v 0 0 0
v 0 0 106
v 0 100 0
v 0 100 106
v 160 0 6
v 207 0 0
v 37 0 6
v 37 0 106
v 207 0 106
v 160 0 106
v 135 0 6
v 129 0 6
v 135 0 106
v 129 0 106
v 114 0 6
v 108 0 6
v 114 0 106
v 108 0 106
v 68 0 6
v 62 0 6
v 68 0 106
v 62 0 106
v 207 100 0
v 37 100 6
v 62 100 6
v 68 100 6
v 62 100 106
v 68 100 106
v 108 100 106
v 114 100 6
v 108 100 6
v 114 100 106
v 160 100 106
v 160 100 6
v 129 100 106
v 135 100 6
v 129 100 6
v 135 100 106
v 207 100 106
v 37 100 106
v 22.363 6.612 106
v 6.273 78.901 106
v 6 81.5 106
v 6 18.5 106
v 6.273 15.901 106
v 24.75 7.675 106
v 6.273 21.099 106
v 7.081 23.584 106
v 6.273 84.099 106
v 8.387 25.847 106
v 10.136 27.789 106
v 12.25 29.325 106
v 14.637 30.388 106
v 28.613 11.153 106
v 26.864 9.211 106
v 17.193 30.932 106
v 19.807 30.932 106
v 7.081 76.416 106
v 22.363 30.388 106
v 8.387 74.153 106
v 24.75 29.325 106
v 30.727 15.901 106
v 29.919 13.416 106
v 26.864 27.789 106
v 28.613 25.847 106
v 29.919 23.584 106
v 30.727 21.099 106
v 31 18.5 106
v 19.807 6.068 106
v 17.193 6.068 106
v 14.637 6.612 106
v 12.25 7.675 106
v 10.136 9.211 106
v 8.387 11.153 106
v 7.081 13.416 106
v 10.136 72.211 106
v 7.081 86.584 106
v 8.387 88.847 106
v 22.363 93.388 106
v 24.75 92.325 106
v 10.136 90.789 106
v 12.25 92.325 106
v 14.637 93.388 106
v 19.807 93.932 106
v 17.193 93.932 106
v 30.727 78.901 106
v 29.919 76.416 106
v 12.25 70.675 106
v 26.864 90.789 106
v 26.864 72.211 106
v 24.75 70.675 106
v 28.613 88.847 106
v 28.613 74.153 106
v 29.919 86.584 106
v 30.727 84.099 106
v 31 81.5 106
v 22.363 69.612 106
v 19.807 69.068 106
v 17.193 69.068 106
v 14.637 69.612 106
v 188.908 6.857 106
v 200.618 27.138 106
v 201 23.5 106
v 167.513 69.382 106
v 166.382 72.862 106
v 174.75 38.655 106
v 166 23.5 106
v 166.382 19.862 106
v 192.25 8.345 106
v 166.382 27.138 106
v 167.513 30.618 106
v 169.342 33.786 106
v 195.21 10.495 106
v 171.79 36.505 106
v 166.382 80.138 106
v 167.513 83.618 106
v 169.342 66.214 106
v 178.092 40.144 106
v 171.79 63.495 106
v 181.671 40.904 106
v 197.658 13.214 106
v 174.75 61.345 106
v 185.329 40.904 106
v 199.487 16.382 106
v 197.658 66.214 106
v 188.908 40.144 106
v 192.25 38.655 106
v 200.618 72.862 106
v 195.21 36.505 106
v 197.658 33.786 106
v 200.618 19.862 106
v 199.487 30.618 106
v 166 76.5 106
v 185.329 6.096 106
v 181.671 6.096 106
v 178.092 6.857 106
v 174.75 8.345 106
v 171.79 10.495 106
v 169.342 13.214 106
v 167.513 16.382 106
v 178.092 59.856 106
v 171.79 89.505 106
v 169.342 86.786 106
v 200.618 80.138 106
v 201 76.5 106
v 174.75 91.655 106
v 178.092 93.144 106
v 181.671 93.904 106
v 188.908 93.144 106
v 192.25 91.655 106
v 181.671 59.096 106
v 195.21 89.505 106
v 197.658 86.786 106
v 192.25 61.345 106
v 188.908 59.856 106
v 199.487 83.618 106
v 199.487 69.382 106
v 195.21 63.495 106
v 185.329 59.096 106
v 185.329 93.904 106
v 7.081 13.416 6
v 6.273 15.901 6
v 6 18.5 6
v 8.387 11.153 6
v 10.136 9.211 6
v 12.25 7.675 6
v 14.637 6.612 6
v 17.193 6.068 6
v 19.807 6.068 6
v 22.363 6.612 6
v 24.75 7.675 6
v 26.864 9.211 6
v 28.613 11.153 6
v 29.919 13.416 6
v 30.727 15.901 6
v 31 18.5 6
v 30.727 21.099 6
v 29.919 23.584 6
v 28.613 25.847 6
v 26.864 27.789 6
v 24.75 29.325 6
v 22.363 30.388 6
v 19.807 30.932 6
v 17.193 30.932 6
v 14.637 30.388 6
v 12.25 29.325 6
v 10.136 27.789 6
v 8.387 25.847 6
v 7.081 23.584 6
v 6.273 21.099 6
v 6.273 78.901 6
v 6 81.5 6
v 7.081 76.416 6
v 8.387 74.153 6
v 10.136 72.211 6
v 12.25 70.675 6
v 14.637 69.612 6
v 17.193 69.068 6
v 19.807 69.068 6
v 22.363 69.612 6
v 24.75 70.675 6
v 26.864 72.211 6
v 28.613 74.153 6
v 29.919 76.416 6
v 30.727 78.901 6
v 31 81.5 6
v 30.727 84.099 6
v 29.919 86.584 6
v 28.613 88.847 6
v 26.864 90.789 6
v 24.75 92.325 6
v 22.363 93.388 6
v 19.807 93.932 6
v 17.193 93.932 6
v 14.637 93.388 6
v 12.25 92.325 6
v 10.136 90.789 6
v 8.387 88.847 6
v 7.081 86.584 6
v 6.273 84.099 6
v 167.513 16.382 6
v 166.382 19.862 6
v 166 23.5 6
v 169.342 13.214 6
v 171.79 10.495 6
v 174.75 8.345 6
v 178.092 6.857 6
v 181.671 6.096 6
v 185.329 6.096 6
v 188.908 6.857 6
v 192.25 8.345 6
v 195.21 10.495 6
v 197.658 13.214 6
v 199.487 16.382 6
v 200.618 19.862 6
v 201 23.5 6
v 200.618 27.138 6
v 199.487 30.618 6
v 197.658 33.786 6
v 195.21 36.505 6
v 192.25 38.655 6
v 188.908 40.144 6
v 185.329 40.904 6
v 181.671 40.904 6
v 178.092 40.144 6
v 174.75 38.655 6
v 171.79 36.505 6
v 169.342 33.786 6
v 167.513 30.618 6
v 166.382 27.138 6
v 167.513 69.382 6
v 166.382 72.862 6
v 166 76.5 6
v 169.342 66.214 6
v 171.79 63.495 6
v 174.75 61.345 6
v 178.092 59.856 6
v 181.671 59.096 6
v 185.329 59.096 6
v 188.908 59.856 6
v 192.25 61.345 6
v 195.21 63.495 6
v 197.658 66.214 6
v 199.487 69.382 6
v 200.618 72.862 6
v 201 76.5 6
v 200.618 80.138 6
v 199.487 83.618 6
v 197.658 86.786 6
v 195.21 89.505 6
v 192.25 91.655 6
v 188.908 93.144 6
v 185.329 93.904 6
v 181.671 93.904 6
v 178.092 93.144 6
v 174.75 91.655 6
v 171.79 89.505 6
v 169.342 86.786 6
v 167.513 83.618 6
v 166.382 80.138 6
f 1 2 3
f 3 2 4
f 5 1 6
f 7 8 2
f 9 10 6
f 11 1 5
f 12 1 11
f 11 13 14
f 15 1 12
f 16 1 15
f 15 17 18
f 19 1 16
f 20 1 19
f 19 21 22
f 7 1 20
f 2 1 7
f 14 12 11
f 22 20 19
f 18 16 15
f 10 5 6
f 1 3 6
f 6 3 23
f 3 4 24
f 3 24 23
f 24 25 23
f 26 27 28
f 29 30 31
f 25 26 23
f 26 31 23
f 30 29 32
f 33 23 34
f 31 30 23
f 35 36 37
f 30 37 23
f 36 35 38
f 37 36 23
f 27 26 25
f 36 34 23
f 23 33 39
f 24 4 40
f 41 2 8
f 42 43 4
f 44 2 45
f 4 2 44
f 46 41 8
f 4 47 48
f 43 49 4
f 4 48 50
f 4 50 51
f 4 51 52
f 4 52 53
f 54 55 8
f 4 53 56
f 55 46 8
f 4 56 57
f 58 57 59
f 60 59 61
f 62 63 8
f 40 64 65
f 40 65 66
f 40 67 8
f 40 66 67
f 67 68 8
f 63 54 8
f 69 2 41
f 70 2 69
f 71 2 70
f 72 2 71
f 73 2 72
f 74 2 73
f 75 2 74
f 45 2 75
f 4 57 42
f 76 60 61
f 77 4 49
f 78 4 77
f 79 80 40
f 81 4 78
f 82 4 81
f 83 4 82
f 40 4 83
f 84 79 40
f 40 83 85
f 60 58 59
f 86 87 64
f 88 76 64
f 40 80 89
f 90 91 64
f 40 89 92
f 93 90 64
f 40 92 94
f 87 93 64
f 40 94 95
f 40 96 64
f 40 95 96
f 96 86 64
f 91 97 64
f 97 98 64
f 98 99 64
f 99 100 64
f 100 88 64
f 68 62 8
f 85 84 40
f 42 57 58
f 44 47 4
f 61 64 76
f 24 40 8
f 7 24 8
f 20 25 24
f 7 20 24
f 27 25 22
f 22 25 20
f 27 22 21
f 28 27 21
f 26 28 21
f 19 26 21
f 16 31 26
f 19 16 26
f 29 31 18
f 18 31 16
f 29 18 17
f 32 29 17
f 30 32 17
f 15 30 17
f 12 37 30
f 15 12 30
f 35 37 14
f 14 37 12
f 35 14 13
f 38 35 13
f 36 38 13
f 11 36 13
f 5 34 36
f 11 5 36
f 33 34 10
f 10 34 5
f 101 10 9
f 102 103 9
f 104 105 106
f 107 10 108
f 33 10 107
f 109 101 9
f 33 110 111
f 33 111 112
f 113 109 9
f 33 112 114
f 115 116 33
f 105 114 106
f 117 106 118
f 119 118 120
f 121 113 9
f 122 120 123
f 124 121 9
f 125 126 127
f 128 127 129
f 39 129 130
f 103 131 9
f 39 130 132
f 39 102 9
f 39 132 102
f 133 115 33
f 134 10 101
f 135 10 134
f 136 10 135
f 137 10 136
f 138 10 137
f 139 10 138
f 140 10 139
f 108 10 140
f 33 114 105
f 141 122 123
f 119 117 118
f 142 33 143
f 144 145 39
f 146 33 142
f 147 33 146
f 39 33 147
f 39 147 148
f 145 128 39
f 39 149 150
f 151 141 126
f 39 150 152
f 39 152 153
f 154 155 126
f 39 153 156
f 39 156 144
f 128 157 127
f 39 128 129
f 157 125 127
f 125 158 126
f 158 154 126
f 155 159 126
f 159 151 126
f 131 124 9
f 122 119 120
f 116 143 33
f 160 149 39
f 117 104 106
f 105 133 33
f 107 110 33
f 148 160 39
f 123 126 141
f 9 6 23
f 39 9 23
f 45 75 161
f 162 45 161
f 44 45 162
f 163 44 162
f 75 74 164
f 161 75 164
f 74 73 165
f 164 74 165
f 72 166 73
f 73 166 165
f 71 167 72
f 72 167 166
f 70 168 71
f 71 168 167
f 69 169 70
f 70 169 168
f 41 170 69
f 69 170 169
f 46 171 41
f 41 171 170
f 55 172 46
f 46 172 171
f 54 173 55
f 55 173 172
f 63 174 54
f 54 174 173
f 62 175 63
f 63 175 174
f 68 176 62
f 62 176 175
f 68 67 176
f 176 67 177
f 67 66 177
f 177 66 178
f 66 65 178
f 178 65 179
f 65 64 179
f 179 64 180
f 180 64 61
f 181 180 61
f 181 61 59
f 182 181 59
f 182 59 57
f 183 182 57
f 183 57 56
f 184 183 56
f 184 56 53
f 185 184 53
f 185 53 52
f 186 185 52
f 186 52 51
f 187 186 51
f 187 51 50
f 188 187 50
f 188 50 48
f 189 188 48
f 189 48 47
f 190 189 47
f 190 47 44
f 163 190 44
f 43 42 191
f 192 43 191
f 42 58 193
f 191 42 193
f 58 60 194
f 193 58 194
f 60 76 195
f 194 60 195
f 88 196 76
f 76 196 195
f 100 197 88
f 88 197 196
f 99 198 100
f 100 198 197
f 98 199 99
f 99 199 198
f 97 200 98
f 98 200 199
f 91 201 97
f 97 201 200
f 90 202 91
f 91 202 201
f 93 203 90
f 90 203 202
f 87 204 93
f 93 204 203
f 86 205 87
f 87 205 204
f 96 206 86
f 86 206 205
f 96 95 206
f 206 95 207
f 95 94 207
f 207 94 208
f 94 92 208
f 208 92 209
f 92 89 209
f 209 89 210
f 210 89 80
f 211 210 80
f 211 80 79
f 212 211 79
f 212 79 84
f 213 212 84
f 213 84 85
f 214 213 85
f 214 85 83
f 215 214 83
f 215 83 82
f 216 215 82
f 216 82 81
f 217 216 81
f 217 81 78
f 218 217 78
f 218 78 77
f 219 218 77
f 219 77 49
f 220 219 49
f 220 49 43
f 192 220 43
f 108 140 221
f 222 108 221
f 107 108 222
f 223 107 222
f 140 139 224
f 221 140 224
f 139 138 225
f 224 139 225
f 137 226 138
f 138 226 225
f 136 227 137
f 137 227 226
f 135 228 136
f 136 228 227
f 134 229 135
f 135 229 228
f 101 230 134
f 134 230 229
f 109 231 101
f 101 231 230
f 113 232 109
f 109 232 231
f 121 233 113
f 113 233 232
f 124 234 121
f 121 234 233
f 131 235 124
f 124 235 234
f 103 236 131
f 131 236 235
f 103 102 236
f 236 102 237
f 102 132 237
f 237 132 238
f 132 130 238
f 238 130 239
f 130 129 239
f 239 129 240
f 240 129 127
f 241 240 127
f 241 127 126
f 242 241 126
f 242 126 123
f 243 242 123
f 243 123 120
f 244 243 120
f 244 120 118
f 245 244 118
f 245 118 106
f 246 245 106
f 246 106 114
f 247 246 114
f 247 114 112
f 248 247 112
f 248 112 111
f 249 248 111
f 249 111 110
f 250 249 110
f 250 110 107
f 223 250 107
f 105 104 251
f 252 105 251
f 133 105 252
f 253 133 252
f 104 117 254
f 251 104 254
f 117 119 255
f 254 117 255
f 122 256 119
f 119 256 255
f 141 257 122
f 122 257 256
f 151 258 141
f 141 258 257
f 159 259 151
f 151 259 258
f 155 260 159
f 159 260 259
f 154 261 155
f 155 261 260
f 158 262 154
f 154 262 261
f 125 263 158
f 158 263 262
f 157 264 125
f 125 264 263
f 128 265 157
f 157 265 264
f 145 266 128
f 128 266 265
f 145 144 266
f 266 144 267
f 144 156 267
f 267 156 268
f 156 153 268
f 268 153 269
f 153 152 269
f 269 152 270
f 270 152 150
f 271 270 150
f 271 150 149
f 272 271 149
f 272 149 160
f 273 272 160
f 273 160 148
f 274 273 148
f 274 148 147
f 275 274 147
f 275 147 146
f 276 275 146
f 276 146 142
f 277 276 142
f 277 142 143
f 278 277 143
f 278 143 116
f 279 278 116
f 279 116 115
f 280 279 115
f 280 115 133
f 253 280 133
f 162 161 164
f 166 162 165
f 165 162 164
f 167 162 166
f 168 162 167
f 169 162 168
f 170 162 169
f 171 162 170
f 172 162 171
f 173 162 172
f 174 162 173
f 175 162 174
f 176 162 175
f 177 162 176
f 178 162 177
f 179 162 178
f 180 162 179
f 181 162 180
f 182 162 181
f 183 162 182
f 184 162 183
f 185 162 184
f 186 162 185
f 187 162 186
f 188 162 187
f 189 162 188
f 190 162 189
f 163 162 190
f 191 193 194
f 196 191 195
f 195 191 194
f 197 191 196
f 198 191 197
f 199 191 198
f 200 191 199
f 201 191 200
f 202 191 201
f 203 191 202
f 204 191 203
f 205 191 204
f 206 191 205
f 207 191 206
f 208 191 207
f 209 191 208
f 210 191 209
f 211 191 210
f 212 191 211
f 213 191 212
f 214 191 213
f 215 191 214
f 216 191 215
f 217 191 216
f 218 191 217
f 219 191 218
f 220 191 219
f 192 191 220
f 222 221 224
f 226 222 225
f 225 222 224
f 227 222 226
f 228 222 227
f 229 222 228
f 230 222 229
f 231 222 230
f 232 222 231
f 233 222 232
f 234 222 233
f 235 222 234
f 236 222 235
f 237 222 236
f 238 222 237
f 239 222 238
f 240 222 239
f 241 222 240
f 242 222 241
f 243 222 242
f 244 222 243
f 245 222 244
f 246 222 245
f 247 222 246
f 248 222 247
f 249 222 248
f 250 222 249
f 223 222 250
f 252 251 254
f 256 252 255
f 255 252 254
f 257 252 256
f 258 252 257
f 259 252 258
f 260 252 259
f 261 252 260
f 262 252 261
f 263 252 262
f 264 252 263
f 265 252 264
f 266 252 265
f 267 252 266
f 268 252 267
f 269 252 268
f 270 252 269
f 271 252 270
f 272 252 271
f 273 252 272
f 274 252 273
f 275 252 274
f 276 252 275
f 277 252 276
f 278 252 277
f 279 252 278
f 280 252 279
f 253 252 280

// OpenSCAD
// Used to hold scrub brushes and sponges near the kitchen sink

totalLength = 100;
hole1Diameter = 25;
hole3Diameter = 35;
slotDepth = 100;
slot1Width = 25;
slot2Width = 40;
slot3Width = 15;
slot4Width = 25;
wallThickness = 6;
floorThickness = 6;
hole1x = wallThickness;
slot1x = hole1x + hole1Diameter + wallThickness;
slot2x = slot1x + slot1Width + wallThickness;
slot3x = slot2x + slot2Width + wallThickness;
slot4x = slot3x + slot3Width + wallThickness;
hole3x = slot4x + slot4Width + wallThickness;
totalWidth = hole3x + hole3Diameter + wallThickness;
overcut = 1;

difference() {
    cube([totalWidth, totalLength, floorThickness + slotDepth]);

    // left holes
    translate([hole1x + hole1Diameter/2, wallThickness + hole1Diameter/2, floorThickness])
        cylinder(d=hole1Diameter, h=slotDepth + overcut);
    translate([hole1x + hole1Diameter/2, totalLength - wallThickness - hole1Diameter/2, floorThickness])
        cylinder(d=hole1Diameter, h=slotDepth + overcut);

    // slot 1
    translate([slot1x, -overcut, floorThickness])
        cube([slot1Width, totalLength + 2*overcut, slotDepth + overcut]);

    // slot 2
    translate([slot2x, -overcut, floorThickness])
        cube([slot2Width, totalLength + 2*overcut, slotDepth + overcut]);

    // slot 3
    translate([slot3x, -overcut, floorThickness])
        cube([slot3Width, totalLength + 2*overcut, slotDepth + overcut]);

    // slot 4
    translate([slot4x, -overcut, floorThickness])
        cube([slot4Width, totalLength + 2*overcut, slotDepth + overcut]);

    // right holes
    translate([hole3x + hole3Diameter/2, wallThickness + hole3Diameter/2, floorThickness])
        cylinder(d=hole3Diameter, h=slotDepth + overcut);
    translate([hole3x + hole3Diameter/2, totalLength - wallThickness - hole3Diameter/2, floorThickness])
        cylinder(d=hole3Diameter, h=slotDepth + overcut);
};
